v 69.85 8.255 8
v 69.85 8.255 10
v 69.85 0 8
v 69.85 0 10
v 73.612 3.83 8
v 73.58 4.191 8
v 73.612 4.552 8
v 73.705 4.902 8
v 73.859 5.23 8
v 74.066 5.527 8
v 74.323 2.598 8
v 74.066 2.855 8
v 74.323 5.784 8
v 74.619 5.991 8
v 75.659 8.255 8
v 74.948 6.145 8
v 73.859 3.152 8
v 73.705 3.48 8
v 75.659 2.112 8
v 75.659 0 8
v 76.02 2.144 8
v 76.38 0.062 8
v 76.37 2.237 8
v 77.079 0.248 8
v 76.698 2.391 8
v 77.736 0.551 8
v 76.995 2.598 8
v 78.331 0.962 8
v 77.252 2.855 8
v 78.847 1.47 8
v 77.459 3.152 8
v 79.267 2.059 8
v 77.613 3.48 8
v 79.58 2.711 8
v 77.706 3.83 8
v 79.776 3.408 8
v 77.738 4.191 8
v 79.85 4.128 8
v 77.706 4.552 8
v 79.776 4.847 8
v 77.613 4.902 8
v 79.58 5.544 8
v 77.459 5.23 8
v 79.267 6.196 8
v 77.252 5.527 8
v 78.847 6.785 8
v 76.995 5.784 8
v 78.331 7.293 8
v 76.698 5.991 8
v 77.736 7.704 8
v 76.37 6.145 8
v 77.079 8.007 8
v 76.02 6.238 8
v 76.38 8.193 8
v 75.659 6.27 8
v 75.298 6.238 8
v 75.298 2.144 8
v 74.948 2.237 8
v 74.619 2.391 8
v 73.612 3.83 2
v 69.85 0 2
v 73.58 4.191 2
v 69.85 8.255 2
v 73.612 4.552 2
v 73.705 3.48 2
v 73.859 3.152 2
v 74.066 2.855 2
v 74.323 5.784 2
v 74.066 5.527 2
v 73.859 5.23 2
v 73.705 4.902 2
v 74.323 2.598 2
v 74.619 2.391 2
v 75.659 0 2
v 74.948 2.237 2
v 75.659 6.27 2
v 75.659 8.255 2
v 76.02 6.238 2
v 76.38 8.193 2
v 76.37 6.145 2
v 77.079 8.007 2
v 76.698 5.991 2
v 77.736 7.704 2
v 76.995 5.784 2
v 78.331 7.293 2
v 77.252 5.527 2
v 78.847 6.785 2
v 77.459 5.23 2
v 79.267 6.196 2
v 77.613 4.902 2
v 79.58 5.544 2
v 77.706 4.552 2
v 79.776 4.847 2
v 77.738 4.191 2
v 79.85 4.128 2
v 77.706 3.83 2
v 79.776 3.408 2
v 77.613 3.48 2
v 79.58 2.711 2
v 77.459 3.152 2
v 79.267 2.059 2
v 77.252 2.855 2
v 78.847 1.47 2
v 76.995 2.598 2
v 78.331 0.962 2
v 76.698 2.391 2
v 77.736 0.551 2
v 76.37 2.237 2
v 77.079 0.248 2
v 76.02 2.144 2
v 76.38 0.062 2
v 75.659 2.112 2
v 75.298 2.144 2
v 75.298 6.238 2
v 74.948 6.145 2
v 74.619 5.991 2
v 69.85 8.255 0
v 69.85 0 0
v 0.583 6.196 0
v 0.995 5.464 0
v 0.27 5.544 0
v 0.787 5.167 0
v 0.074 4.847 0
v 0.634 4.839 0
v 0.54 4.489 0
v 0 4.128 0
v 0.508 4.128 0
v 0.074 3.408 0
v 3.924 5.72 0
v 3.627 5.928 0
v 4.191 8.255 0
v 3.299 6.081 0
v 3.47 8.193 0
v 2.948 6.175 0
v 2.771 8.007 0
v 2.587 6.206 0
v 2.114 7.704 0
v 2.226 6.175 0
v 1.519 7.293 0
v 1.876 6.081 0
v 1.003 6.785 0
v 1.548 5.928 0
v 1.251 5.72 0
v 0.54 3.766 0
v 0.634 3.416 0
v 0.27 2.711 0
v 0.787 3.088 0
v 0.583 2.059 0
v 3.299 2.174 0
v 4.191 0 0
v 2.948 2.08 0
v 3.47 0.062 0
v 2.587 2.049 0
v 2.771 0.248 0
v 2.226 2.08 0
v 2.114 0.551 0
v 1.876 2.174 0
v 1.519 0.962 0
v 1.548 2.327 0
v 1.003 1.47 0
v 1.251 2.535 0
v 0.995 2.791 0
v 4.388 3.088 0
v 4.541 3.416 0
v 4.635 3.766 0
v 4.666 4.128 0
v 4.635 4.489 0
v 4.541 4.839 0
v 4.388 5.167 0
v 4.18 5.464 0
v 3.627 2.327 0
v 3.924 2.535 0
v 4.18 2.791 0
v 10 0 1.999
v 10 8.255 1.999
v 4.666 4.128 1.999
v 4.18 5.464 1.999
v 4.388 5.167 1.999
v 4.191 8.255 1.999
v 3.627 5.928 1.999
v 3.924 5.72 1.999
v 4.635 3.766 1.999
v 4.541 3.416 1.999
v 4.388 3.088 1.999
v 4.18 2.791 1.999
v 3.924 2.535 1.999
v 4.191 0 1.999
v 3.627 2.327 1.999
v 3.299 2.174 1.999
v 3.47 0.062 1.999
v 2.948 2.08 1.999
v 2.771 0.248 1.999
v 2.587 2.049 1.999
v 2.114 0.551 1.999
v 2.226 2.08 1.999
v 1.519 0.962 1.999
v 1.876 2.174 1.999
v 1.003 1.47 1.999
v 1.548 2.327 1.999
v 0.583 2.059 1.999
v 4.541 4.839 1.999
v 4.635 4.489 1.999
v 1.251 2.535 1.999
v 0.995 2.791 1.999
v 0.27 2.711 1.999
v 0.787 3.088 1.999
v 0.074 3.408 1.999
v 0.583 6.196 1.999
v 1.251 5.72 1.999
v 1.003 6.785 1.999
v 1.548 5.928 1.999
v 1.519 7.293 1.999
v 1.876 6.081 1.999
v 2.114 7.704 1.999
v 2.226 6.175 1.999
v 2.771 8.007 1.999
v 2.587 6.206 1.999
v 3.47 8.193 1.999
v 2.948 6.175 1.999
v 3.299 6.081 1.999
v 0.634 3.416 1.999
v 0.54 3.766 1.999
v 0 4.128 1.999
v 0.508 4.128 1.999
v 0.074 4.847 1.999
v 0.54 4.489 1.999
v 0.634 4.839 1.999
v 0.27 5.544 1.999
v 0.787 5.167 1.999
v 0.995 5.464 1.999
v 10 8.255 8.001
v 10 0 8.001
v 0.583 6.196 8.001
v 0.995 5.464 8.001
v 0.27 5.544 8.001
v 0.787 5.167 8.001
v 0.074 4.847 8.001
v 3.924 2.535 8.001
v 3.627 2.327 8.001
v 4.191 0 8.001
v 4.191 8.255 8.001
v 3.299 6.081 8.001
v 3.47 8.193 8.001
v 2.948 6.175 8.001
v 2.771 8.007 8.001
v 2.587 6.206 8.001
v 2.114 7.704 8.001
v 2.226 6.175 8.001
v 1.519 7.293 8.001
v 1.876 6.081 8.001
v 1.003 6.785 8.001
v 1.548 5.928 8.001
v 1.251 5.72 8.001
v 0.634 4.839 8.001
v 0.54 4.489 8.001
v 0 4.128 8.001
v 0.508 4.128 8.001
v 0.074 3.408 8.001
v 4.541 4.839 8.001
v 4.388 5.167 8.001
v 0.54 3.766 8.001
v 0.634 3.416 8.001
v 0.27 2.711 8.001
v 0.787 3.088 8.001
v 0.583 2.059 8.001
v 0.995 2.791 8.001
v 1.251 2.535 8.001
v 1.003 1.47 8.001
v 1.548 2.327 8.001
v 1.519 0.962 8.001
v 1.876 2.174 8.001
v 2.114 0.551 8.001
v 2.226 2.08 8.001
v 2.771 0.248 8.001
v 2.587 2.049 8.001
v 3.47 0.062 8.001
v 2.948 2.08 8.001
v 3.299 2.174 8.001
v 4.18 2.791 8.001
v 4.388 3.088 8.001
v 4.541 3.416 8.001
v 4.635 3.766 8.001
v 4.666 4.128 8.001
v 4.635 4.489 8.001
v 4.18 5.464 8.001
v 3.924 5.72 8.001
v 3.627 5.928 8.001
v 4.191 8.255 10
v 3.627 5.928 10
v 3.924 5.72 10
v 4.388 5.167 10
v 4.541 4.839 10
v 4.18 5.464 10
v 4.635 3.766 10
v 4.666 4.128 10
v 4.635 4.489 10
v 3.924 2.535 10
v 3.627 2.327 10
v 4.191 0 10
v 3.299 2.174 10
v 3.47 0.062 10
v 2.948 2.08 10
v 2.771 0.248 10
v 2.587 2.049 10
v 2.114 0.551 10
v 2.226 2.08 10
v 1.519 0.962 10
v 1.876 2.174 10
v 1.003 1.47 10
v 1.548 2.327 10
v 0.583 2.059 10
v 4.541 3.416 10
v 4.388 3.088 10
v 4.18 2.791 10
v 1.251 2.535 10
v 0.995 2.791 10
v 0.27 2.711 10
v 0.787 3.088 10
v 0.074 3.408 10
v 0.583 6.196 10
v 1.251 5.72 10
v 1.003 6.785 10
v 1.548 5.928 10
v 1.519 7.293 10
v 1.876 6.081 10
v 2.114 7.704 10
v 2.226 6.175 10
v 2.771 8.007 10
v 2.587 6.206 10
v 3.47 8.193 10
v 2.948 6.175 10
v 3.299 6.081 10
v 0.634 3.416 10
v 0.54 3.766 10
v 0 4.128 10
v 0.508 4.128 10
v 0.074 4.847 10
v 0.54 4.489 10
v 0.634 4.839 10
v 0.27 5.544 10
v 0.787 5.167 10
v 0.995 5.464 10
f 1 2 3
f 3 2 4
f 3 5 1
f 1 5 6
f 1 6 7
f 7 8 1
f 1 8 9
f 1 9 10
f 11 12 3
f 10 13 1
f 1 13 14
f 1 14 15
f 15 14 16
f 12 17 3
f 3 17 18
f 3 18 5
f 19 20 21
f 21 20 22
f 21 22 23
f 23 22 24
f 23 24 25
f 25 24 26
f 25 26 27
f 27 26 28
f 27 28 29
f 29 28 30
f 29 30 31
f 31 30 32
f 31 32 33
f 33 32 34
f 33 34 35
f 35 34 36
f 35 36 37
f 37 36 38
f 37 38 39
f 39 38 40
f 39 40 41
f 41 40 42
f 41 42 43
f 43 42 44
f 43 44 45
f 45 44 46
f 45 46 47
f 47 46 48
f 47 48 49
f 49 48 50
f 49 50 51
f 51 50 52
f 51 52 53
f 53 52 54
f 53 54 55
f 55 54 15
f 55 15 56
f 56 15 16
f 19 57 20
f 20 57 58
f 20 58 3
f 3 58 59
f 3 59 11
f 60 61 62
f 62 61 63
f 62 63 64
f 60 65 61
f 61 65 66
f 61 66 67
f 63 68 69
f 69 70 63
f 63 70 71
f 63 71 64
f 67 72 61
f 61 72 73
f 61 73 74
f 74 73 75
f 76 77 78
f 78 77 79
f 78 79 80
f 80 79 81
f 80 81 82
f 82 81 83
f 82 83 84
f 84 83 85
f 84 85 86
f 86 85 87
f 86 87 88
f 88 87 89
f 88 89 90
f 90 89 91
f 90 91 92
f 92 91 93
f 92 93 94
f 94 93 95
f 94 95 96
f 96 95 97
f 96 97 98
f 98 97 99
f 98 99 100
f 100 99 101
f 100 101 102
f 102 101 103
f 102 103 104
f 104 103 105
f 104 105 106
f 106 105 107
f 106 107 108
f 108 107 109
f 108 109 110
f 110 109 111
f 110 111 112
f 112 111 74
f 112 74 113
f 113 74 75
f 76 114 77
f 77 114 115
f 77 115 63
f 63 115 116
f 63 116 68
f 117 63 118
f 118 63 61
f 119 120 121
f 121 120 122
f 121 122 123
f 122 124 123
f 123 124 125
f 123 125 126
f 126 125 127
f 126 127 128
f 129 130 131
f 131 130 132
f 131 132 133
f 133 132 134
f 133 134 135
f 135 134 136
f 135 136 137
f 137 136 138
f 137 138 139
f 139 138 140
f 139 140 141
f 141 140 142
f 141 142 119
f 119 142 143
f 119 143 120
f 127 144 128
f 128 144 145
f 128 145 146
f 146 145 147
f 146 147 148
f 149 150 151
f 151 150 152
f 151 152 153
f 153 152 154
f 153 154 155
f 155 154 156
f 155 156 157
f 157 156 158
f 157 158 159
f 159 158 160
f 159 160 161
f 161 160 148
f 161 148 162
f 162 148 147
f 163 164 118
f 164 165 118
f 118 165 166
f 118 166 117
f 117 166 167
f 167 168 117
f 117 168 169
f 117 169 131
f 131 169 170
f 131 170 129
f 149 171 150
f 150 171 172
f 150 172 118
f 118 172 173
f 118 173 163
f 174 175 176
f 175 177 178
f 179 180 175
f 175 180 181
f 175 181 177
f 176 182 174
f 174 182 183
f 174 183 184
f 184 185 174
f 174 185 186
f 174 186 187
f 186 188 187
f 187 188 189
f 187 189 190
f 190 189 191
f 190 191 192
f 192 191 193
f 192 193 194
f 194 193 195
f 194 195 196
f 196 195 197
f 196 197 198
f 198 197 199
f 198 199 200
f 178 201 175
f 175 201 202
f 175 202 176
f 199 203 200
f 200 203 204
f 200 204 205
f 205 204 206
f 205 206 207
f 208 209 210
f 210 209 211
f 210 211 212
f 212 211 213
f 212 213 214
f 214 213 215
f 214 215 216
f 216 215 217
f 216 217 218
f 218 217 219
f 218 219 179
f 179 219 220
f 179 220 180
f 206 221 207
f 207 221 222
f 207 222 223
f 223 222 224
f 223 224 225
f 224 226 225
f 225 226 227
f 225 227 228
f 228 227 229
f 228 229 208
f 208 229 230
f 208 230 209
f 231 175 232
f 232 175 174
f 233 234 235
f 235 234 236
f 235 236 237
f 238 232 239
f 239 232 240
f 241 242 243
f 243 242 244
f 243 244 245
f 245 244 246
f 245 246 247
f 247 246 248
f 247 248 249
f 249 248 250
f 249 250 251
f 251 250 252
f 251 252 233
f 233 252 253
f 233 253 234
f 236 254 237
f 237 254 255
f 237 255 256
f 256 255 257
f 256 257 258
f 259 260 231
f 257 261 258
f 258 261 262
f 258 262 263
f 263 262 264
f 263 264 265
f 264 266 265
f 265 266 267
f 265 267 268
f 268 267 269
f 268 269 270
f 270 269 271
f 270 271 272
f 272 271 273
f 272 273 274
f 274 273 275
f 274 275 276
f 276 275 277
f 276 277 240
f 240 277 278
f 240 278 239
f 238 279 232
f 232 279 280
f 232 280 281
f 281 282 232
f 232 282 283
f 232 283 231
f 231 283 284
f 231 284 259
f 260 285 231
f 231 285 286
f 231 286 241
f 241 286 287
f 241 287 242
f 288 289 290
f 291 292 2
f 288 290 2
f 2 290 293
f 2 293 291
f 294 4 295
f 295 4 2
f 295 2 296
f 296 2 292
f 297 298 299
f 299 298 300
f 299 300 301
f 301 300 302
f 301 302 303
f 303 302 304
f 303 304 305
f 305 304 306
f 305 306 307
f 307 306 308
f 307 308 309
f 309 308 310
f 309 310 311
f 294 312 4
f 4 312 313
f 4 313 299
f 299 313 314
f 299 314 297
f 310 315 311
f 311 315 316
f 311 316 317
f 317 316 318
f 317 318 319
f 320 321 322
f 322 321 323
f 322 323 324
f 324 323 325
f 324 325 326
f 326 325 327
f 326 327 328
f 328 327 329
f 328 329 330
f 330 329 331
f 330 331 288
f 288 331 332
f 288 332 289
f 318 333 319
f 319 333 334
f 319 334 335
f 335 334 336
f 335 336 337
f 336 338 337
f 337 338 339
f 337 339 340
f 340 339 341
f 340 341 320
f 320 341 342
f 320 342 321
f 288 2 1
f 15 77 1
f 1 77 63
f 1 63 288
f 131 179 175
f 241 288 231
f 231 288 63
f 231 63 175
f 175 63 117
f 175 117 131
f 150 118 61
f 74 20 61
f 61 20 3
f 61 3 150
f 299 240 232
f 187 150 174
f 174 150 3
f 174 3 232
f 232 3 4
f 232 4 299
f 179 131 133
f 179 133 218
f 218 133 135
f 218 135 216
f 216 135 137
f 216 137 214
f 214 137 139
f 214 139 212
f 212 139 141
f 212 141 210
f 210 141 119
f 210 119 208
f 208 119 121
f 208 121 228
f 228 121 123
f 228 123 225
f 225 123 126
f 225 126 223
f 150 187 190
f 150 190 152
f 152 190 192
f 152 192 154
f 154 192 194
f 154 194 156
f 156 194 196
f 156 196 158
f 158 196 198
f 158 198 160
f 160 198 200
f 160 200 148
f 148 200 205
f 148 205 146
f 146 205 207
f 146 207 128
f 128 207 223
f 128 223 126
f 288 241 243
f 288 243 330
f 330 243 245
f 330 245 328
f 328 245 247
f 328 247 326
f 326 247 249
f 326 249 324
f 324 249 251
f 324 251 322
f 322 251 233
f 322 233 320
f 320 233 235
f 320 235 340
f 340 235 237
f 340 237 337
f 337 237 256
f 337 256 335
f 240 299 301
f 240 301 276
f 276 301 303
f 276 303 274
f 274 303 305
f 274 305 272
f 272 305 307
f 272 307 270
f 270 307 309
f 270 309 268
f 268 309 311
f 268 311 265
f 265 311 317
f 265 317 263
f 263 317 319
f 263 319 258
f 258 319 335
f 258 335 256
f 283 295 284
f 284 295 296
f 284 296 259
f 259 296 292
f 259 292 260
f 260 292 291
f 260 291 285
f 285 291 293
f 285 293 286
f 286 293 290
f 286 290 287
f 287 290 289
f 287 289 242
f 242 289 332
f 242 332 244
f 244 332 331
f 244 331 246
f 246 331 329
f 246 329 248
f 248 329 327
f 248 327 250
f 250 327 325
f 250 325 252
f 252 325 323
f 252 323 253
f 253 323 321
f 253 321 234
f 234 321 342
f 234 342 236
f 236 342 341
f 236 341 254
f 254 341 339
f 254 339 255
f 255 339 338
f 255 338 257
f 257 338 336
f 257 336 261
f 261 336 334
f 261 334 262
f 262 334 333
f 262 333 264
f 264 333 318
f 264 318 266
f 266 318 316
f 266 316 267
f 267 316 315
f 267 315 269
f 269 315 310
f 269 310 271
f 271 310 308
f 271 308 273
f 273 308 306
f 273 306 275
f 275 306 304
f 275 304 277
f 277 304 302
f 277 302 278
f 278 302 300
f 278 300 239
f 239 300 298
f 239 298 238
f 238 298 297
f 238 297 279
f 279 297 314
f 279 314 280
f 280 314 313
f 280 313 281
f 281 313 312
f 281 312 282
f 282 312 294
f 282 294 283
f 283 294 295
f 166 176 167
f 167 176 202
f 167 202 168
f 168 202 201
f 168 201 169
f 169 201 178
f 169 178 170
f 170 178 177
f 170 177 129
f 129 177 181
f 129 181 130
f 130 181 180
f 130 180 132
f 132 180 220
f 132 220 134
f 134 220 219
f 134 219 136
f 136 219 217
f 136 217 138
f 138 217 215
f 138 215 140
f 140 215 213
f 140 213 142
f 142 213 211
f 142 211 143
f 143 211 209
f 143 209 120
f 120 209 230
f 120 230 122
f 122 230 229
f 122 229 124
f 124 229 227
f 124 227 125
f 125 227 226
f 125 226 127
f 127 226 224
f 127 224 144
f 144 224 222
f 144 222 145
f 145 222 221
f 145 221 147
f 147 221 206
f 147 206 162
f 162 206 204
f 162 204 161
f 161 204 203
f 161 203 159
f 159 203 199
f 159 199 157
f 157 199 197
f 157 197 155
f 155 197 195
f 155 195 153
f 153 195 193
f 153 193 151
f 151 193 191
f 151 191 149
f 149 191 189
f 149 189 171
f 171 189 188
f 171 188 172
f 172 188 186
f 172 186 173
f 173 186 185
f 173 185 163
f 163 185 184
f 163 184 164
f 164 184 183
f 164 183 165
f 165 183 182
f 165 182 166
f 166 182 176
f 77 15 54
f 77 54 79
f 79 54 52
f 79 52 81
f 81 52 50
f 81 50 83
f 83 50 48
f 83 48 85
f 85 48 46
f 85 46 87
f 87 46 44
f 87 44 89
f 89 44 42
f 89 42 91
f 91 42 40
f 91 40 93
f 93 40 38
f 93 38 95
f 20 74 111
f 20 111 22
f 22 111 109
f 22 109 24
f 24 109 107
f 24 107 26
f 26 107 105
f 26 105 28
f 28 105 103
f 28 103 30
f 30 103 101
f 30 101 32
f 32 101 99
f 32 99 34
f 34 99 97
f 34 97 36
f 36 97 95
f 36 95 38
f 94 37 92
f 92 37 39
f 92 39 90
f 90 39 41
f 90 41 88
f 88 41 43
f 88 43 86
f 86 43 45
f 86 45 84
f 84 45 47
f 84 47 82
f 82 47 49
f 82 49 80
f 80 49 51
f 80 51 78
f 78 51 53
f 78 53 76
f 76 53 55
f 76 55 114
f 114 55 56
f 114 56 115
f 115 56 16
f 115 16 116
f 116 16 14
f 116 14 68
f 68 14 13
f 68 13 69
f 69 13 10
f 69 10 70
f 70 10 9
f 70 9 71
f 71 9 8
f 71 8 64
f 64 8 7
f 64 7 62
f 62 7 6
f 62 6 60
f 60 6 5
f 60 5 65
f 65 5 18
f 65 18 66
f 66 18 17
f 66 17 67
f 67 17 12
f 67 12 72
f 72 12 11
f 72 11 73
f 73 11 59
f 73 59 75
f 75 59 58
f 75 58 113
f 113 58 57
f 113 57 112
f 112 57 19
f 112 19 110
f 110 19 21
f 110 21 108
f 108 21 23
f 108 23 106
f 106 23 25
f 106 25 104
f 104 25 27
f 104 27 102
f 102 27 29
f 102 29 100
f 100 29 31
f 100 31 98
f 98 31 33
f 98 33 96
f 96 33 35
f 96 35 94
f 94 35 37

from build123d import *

# Parameters (mm, degrees)
BOSS_EXTRUDE1_DEPTH = 8.255
FILLET1_R           = 4.191
SKETCH2_R           = 2.07899
CUT_EXTRUDE1_DEPTH  = 81.896006892
FILLET2_R           = 4.191
SKETCH3_R           = 2.07899
CUT_EXTRUDE2_DEPTH  = 8.255


with BuildPart() as part:
    # Sketch1 → Boss-Extrude1 (new body)
    with BuildSketch(Plane(origin=(0, 0, 0), x_dir=(1, 0, 0), z_dir=(0, 1, 0))):
        Polygon((69.85, -7.99998), (69.85, -9.99998), (0, -9.99998), (0, -8.001), (9.99998, -8.001), (9.99998, -1.99898), (0, -1.99898), (0, 0), (69.85, 0), (69.85, -2), (79.84998, -2), (79.84998, -7.99998), align=None)
    extrude(amount=BOSS_EXTRUDE1_DEPTH)

    # Fillet1
    # the kernel refuses this fillet: 4.191 mm, written as the material it takes off along each edge
    with BuildSketch(Plane(origin=(0, 0, 12.47648), x_dir=(0, 1, 0), z_dir=(0, 0, -1)), Plane(origin=(0, 0, 20.47748), x_dir=(0, 1, 0), z_dir=(0, 0, -1))) as fillet1_piece_1:
        with BuildLine():
            CenterArc((FILLET1_R, FILLET1_R), FILLET1_R, 180, 90)
            Line((0, FILLET1_R), (0, 0))
            Line((0, 0), (FILLET1_R, 0))
        make_face()
    extrude(amount=22.95398, mode=Mode.SUBTRACT)
    with BuildSketch(Plane(origin=(0, 8.255, 12.47648), x_dir=(0, -1, 0), z_dir=(0, 0, -1)), Plane(origin=(0, 8.255, 20.47748), x_dir=(0, -1, 0), z_dir=(0, 0, -1))) as fillet1_piece_2:
        with BuildLine():
            CenterArc((FILLET1_R, -FILLET1_R), FILLET1_R, 90, 90)
            Line((0, -FILLET1_R), (0, 0))
            Line((0, 0), (FILLET1_R, 0))
        make_face()
    extrude(amount=22.95398, mode=Mode.SUBTRACT)

    # Sketch2 → Cut-Extrude1 (cut, through all)
    with BuildSketch(Plane.XY.offset(9.99998)):
        with Locations((2.587471088, 4.1275)):
            Circle(SKETCH2_R)
    extrude(amount=-CUT_EXTRUDE1_DEPTH, mode=Mode.SUBTRACT)

    # Fillet2
    # the kernel refuses this fillet: 4.191 mm, written as the material it takes off along each edge
    with BuildSketch(Plane(origin=(79.84998, 0, -8.4775), x_dir=(-1, 0, 0), z_dir=(0, 0, 1))) as fillet2_piece_1:
        with BuildLine():
            CenterArc((FILLET2_R, -FILLET2_R), FILLET2_R, 90, 90)
            Line((0, -FILLET2_R), (0, 0))
            Line((0, 0), (FILLET2_R, 0))
        make_face()
    extrude(amount=26.95498, mode=Mode.SUBTRACT)
    with BuildSketch(Plane(origin=(79.84998, 8.255, -8.4775), x_dir=(-1, 0, 0), z_dir=(0, 0, 1))) as fillet2_piece_2:
        with BuildLine():
            CenterArc((FILLET2_R, FILLET2_R), FILLET2_R, 180, 90)
            Line((0, FILLET2_R), (0, 0))
            Line((0, 0), (FILLET2_R, 0))
        make_face()
    extrude(amount=26.95498, mode=Mode.SUBTRACT)

    # Sketch3 → Cut-Extrude2 (cut)
    with BuildSketch(Plane.XY.offset(7.99998)):
        with Locations((75.65898, 4.191)):
            Circle(SKETCH3_R)
    extrude(amount=-CUT_EXTRUDE2_DEPTH, mode=Mode.SUBTRACT)


solid = part.part
